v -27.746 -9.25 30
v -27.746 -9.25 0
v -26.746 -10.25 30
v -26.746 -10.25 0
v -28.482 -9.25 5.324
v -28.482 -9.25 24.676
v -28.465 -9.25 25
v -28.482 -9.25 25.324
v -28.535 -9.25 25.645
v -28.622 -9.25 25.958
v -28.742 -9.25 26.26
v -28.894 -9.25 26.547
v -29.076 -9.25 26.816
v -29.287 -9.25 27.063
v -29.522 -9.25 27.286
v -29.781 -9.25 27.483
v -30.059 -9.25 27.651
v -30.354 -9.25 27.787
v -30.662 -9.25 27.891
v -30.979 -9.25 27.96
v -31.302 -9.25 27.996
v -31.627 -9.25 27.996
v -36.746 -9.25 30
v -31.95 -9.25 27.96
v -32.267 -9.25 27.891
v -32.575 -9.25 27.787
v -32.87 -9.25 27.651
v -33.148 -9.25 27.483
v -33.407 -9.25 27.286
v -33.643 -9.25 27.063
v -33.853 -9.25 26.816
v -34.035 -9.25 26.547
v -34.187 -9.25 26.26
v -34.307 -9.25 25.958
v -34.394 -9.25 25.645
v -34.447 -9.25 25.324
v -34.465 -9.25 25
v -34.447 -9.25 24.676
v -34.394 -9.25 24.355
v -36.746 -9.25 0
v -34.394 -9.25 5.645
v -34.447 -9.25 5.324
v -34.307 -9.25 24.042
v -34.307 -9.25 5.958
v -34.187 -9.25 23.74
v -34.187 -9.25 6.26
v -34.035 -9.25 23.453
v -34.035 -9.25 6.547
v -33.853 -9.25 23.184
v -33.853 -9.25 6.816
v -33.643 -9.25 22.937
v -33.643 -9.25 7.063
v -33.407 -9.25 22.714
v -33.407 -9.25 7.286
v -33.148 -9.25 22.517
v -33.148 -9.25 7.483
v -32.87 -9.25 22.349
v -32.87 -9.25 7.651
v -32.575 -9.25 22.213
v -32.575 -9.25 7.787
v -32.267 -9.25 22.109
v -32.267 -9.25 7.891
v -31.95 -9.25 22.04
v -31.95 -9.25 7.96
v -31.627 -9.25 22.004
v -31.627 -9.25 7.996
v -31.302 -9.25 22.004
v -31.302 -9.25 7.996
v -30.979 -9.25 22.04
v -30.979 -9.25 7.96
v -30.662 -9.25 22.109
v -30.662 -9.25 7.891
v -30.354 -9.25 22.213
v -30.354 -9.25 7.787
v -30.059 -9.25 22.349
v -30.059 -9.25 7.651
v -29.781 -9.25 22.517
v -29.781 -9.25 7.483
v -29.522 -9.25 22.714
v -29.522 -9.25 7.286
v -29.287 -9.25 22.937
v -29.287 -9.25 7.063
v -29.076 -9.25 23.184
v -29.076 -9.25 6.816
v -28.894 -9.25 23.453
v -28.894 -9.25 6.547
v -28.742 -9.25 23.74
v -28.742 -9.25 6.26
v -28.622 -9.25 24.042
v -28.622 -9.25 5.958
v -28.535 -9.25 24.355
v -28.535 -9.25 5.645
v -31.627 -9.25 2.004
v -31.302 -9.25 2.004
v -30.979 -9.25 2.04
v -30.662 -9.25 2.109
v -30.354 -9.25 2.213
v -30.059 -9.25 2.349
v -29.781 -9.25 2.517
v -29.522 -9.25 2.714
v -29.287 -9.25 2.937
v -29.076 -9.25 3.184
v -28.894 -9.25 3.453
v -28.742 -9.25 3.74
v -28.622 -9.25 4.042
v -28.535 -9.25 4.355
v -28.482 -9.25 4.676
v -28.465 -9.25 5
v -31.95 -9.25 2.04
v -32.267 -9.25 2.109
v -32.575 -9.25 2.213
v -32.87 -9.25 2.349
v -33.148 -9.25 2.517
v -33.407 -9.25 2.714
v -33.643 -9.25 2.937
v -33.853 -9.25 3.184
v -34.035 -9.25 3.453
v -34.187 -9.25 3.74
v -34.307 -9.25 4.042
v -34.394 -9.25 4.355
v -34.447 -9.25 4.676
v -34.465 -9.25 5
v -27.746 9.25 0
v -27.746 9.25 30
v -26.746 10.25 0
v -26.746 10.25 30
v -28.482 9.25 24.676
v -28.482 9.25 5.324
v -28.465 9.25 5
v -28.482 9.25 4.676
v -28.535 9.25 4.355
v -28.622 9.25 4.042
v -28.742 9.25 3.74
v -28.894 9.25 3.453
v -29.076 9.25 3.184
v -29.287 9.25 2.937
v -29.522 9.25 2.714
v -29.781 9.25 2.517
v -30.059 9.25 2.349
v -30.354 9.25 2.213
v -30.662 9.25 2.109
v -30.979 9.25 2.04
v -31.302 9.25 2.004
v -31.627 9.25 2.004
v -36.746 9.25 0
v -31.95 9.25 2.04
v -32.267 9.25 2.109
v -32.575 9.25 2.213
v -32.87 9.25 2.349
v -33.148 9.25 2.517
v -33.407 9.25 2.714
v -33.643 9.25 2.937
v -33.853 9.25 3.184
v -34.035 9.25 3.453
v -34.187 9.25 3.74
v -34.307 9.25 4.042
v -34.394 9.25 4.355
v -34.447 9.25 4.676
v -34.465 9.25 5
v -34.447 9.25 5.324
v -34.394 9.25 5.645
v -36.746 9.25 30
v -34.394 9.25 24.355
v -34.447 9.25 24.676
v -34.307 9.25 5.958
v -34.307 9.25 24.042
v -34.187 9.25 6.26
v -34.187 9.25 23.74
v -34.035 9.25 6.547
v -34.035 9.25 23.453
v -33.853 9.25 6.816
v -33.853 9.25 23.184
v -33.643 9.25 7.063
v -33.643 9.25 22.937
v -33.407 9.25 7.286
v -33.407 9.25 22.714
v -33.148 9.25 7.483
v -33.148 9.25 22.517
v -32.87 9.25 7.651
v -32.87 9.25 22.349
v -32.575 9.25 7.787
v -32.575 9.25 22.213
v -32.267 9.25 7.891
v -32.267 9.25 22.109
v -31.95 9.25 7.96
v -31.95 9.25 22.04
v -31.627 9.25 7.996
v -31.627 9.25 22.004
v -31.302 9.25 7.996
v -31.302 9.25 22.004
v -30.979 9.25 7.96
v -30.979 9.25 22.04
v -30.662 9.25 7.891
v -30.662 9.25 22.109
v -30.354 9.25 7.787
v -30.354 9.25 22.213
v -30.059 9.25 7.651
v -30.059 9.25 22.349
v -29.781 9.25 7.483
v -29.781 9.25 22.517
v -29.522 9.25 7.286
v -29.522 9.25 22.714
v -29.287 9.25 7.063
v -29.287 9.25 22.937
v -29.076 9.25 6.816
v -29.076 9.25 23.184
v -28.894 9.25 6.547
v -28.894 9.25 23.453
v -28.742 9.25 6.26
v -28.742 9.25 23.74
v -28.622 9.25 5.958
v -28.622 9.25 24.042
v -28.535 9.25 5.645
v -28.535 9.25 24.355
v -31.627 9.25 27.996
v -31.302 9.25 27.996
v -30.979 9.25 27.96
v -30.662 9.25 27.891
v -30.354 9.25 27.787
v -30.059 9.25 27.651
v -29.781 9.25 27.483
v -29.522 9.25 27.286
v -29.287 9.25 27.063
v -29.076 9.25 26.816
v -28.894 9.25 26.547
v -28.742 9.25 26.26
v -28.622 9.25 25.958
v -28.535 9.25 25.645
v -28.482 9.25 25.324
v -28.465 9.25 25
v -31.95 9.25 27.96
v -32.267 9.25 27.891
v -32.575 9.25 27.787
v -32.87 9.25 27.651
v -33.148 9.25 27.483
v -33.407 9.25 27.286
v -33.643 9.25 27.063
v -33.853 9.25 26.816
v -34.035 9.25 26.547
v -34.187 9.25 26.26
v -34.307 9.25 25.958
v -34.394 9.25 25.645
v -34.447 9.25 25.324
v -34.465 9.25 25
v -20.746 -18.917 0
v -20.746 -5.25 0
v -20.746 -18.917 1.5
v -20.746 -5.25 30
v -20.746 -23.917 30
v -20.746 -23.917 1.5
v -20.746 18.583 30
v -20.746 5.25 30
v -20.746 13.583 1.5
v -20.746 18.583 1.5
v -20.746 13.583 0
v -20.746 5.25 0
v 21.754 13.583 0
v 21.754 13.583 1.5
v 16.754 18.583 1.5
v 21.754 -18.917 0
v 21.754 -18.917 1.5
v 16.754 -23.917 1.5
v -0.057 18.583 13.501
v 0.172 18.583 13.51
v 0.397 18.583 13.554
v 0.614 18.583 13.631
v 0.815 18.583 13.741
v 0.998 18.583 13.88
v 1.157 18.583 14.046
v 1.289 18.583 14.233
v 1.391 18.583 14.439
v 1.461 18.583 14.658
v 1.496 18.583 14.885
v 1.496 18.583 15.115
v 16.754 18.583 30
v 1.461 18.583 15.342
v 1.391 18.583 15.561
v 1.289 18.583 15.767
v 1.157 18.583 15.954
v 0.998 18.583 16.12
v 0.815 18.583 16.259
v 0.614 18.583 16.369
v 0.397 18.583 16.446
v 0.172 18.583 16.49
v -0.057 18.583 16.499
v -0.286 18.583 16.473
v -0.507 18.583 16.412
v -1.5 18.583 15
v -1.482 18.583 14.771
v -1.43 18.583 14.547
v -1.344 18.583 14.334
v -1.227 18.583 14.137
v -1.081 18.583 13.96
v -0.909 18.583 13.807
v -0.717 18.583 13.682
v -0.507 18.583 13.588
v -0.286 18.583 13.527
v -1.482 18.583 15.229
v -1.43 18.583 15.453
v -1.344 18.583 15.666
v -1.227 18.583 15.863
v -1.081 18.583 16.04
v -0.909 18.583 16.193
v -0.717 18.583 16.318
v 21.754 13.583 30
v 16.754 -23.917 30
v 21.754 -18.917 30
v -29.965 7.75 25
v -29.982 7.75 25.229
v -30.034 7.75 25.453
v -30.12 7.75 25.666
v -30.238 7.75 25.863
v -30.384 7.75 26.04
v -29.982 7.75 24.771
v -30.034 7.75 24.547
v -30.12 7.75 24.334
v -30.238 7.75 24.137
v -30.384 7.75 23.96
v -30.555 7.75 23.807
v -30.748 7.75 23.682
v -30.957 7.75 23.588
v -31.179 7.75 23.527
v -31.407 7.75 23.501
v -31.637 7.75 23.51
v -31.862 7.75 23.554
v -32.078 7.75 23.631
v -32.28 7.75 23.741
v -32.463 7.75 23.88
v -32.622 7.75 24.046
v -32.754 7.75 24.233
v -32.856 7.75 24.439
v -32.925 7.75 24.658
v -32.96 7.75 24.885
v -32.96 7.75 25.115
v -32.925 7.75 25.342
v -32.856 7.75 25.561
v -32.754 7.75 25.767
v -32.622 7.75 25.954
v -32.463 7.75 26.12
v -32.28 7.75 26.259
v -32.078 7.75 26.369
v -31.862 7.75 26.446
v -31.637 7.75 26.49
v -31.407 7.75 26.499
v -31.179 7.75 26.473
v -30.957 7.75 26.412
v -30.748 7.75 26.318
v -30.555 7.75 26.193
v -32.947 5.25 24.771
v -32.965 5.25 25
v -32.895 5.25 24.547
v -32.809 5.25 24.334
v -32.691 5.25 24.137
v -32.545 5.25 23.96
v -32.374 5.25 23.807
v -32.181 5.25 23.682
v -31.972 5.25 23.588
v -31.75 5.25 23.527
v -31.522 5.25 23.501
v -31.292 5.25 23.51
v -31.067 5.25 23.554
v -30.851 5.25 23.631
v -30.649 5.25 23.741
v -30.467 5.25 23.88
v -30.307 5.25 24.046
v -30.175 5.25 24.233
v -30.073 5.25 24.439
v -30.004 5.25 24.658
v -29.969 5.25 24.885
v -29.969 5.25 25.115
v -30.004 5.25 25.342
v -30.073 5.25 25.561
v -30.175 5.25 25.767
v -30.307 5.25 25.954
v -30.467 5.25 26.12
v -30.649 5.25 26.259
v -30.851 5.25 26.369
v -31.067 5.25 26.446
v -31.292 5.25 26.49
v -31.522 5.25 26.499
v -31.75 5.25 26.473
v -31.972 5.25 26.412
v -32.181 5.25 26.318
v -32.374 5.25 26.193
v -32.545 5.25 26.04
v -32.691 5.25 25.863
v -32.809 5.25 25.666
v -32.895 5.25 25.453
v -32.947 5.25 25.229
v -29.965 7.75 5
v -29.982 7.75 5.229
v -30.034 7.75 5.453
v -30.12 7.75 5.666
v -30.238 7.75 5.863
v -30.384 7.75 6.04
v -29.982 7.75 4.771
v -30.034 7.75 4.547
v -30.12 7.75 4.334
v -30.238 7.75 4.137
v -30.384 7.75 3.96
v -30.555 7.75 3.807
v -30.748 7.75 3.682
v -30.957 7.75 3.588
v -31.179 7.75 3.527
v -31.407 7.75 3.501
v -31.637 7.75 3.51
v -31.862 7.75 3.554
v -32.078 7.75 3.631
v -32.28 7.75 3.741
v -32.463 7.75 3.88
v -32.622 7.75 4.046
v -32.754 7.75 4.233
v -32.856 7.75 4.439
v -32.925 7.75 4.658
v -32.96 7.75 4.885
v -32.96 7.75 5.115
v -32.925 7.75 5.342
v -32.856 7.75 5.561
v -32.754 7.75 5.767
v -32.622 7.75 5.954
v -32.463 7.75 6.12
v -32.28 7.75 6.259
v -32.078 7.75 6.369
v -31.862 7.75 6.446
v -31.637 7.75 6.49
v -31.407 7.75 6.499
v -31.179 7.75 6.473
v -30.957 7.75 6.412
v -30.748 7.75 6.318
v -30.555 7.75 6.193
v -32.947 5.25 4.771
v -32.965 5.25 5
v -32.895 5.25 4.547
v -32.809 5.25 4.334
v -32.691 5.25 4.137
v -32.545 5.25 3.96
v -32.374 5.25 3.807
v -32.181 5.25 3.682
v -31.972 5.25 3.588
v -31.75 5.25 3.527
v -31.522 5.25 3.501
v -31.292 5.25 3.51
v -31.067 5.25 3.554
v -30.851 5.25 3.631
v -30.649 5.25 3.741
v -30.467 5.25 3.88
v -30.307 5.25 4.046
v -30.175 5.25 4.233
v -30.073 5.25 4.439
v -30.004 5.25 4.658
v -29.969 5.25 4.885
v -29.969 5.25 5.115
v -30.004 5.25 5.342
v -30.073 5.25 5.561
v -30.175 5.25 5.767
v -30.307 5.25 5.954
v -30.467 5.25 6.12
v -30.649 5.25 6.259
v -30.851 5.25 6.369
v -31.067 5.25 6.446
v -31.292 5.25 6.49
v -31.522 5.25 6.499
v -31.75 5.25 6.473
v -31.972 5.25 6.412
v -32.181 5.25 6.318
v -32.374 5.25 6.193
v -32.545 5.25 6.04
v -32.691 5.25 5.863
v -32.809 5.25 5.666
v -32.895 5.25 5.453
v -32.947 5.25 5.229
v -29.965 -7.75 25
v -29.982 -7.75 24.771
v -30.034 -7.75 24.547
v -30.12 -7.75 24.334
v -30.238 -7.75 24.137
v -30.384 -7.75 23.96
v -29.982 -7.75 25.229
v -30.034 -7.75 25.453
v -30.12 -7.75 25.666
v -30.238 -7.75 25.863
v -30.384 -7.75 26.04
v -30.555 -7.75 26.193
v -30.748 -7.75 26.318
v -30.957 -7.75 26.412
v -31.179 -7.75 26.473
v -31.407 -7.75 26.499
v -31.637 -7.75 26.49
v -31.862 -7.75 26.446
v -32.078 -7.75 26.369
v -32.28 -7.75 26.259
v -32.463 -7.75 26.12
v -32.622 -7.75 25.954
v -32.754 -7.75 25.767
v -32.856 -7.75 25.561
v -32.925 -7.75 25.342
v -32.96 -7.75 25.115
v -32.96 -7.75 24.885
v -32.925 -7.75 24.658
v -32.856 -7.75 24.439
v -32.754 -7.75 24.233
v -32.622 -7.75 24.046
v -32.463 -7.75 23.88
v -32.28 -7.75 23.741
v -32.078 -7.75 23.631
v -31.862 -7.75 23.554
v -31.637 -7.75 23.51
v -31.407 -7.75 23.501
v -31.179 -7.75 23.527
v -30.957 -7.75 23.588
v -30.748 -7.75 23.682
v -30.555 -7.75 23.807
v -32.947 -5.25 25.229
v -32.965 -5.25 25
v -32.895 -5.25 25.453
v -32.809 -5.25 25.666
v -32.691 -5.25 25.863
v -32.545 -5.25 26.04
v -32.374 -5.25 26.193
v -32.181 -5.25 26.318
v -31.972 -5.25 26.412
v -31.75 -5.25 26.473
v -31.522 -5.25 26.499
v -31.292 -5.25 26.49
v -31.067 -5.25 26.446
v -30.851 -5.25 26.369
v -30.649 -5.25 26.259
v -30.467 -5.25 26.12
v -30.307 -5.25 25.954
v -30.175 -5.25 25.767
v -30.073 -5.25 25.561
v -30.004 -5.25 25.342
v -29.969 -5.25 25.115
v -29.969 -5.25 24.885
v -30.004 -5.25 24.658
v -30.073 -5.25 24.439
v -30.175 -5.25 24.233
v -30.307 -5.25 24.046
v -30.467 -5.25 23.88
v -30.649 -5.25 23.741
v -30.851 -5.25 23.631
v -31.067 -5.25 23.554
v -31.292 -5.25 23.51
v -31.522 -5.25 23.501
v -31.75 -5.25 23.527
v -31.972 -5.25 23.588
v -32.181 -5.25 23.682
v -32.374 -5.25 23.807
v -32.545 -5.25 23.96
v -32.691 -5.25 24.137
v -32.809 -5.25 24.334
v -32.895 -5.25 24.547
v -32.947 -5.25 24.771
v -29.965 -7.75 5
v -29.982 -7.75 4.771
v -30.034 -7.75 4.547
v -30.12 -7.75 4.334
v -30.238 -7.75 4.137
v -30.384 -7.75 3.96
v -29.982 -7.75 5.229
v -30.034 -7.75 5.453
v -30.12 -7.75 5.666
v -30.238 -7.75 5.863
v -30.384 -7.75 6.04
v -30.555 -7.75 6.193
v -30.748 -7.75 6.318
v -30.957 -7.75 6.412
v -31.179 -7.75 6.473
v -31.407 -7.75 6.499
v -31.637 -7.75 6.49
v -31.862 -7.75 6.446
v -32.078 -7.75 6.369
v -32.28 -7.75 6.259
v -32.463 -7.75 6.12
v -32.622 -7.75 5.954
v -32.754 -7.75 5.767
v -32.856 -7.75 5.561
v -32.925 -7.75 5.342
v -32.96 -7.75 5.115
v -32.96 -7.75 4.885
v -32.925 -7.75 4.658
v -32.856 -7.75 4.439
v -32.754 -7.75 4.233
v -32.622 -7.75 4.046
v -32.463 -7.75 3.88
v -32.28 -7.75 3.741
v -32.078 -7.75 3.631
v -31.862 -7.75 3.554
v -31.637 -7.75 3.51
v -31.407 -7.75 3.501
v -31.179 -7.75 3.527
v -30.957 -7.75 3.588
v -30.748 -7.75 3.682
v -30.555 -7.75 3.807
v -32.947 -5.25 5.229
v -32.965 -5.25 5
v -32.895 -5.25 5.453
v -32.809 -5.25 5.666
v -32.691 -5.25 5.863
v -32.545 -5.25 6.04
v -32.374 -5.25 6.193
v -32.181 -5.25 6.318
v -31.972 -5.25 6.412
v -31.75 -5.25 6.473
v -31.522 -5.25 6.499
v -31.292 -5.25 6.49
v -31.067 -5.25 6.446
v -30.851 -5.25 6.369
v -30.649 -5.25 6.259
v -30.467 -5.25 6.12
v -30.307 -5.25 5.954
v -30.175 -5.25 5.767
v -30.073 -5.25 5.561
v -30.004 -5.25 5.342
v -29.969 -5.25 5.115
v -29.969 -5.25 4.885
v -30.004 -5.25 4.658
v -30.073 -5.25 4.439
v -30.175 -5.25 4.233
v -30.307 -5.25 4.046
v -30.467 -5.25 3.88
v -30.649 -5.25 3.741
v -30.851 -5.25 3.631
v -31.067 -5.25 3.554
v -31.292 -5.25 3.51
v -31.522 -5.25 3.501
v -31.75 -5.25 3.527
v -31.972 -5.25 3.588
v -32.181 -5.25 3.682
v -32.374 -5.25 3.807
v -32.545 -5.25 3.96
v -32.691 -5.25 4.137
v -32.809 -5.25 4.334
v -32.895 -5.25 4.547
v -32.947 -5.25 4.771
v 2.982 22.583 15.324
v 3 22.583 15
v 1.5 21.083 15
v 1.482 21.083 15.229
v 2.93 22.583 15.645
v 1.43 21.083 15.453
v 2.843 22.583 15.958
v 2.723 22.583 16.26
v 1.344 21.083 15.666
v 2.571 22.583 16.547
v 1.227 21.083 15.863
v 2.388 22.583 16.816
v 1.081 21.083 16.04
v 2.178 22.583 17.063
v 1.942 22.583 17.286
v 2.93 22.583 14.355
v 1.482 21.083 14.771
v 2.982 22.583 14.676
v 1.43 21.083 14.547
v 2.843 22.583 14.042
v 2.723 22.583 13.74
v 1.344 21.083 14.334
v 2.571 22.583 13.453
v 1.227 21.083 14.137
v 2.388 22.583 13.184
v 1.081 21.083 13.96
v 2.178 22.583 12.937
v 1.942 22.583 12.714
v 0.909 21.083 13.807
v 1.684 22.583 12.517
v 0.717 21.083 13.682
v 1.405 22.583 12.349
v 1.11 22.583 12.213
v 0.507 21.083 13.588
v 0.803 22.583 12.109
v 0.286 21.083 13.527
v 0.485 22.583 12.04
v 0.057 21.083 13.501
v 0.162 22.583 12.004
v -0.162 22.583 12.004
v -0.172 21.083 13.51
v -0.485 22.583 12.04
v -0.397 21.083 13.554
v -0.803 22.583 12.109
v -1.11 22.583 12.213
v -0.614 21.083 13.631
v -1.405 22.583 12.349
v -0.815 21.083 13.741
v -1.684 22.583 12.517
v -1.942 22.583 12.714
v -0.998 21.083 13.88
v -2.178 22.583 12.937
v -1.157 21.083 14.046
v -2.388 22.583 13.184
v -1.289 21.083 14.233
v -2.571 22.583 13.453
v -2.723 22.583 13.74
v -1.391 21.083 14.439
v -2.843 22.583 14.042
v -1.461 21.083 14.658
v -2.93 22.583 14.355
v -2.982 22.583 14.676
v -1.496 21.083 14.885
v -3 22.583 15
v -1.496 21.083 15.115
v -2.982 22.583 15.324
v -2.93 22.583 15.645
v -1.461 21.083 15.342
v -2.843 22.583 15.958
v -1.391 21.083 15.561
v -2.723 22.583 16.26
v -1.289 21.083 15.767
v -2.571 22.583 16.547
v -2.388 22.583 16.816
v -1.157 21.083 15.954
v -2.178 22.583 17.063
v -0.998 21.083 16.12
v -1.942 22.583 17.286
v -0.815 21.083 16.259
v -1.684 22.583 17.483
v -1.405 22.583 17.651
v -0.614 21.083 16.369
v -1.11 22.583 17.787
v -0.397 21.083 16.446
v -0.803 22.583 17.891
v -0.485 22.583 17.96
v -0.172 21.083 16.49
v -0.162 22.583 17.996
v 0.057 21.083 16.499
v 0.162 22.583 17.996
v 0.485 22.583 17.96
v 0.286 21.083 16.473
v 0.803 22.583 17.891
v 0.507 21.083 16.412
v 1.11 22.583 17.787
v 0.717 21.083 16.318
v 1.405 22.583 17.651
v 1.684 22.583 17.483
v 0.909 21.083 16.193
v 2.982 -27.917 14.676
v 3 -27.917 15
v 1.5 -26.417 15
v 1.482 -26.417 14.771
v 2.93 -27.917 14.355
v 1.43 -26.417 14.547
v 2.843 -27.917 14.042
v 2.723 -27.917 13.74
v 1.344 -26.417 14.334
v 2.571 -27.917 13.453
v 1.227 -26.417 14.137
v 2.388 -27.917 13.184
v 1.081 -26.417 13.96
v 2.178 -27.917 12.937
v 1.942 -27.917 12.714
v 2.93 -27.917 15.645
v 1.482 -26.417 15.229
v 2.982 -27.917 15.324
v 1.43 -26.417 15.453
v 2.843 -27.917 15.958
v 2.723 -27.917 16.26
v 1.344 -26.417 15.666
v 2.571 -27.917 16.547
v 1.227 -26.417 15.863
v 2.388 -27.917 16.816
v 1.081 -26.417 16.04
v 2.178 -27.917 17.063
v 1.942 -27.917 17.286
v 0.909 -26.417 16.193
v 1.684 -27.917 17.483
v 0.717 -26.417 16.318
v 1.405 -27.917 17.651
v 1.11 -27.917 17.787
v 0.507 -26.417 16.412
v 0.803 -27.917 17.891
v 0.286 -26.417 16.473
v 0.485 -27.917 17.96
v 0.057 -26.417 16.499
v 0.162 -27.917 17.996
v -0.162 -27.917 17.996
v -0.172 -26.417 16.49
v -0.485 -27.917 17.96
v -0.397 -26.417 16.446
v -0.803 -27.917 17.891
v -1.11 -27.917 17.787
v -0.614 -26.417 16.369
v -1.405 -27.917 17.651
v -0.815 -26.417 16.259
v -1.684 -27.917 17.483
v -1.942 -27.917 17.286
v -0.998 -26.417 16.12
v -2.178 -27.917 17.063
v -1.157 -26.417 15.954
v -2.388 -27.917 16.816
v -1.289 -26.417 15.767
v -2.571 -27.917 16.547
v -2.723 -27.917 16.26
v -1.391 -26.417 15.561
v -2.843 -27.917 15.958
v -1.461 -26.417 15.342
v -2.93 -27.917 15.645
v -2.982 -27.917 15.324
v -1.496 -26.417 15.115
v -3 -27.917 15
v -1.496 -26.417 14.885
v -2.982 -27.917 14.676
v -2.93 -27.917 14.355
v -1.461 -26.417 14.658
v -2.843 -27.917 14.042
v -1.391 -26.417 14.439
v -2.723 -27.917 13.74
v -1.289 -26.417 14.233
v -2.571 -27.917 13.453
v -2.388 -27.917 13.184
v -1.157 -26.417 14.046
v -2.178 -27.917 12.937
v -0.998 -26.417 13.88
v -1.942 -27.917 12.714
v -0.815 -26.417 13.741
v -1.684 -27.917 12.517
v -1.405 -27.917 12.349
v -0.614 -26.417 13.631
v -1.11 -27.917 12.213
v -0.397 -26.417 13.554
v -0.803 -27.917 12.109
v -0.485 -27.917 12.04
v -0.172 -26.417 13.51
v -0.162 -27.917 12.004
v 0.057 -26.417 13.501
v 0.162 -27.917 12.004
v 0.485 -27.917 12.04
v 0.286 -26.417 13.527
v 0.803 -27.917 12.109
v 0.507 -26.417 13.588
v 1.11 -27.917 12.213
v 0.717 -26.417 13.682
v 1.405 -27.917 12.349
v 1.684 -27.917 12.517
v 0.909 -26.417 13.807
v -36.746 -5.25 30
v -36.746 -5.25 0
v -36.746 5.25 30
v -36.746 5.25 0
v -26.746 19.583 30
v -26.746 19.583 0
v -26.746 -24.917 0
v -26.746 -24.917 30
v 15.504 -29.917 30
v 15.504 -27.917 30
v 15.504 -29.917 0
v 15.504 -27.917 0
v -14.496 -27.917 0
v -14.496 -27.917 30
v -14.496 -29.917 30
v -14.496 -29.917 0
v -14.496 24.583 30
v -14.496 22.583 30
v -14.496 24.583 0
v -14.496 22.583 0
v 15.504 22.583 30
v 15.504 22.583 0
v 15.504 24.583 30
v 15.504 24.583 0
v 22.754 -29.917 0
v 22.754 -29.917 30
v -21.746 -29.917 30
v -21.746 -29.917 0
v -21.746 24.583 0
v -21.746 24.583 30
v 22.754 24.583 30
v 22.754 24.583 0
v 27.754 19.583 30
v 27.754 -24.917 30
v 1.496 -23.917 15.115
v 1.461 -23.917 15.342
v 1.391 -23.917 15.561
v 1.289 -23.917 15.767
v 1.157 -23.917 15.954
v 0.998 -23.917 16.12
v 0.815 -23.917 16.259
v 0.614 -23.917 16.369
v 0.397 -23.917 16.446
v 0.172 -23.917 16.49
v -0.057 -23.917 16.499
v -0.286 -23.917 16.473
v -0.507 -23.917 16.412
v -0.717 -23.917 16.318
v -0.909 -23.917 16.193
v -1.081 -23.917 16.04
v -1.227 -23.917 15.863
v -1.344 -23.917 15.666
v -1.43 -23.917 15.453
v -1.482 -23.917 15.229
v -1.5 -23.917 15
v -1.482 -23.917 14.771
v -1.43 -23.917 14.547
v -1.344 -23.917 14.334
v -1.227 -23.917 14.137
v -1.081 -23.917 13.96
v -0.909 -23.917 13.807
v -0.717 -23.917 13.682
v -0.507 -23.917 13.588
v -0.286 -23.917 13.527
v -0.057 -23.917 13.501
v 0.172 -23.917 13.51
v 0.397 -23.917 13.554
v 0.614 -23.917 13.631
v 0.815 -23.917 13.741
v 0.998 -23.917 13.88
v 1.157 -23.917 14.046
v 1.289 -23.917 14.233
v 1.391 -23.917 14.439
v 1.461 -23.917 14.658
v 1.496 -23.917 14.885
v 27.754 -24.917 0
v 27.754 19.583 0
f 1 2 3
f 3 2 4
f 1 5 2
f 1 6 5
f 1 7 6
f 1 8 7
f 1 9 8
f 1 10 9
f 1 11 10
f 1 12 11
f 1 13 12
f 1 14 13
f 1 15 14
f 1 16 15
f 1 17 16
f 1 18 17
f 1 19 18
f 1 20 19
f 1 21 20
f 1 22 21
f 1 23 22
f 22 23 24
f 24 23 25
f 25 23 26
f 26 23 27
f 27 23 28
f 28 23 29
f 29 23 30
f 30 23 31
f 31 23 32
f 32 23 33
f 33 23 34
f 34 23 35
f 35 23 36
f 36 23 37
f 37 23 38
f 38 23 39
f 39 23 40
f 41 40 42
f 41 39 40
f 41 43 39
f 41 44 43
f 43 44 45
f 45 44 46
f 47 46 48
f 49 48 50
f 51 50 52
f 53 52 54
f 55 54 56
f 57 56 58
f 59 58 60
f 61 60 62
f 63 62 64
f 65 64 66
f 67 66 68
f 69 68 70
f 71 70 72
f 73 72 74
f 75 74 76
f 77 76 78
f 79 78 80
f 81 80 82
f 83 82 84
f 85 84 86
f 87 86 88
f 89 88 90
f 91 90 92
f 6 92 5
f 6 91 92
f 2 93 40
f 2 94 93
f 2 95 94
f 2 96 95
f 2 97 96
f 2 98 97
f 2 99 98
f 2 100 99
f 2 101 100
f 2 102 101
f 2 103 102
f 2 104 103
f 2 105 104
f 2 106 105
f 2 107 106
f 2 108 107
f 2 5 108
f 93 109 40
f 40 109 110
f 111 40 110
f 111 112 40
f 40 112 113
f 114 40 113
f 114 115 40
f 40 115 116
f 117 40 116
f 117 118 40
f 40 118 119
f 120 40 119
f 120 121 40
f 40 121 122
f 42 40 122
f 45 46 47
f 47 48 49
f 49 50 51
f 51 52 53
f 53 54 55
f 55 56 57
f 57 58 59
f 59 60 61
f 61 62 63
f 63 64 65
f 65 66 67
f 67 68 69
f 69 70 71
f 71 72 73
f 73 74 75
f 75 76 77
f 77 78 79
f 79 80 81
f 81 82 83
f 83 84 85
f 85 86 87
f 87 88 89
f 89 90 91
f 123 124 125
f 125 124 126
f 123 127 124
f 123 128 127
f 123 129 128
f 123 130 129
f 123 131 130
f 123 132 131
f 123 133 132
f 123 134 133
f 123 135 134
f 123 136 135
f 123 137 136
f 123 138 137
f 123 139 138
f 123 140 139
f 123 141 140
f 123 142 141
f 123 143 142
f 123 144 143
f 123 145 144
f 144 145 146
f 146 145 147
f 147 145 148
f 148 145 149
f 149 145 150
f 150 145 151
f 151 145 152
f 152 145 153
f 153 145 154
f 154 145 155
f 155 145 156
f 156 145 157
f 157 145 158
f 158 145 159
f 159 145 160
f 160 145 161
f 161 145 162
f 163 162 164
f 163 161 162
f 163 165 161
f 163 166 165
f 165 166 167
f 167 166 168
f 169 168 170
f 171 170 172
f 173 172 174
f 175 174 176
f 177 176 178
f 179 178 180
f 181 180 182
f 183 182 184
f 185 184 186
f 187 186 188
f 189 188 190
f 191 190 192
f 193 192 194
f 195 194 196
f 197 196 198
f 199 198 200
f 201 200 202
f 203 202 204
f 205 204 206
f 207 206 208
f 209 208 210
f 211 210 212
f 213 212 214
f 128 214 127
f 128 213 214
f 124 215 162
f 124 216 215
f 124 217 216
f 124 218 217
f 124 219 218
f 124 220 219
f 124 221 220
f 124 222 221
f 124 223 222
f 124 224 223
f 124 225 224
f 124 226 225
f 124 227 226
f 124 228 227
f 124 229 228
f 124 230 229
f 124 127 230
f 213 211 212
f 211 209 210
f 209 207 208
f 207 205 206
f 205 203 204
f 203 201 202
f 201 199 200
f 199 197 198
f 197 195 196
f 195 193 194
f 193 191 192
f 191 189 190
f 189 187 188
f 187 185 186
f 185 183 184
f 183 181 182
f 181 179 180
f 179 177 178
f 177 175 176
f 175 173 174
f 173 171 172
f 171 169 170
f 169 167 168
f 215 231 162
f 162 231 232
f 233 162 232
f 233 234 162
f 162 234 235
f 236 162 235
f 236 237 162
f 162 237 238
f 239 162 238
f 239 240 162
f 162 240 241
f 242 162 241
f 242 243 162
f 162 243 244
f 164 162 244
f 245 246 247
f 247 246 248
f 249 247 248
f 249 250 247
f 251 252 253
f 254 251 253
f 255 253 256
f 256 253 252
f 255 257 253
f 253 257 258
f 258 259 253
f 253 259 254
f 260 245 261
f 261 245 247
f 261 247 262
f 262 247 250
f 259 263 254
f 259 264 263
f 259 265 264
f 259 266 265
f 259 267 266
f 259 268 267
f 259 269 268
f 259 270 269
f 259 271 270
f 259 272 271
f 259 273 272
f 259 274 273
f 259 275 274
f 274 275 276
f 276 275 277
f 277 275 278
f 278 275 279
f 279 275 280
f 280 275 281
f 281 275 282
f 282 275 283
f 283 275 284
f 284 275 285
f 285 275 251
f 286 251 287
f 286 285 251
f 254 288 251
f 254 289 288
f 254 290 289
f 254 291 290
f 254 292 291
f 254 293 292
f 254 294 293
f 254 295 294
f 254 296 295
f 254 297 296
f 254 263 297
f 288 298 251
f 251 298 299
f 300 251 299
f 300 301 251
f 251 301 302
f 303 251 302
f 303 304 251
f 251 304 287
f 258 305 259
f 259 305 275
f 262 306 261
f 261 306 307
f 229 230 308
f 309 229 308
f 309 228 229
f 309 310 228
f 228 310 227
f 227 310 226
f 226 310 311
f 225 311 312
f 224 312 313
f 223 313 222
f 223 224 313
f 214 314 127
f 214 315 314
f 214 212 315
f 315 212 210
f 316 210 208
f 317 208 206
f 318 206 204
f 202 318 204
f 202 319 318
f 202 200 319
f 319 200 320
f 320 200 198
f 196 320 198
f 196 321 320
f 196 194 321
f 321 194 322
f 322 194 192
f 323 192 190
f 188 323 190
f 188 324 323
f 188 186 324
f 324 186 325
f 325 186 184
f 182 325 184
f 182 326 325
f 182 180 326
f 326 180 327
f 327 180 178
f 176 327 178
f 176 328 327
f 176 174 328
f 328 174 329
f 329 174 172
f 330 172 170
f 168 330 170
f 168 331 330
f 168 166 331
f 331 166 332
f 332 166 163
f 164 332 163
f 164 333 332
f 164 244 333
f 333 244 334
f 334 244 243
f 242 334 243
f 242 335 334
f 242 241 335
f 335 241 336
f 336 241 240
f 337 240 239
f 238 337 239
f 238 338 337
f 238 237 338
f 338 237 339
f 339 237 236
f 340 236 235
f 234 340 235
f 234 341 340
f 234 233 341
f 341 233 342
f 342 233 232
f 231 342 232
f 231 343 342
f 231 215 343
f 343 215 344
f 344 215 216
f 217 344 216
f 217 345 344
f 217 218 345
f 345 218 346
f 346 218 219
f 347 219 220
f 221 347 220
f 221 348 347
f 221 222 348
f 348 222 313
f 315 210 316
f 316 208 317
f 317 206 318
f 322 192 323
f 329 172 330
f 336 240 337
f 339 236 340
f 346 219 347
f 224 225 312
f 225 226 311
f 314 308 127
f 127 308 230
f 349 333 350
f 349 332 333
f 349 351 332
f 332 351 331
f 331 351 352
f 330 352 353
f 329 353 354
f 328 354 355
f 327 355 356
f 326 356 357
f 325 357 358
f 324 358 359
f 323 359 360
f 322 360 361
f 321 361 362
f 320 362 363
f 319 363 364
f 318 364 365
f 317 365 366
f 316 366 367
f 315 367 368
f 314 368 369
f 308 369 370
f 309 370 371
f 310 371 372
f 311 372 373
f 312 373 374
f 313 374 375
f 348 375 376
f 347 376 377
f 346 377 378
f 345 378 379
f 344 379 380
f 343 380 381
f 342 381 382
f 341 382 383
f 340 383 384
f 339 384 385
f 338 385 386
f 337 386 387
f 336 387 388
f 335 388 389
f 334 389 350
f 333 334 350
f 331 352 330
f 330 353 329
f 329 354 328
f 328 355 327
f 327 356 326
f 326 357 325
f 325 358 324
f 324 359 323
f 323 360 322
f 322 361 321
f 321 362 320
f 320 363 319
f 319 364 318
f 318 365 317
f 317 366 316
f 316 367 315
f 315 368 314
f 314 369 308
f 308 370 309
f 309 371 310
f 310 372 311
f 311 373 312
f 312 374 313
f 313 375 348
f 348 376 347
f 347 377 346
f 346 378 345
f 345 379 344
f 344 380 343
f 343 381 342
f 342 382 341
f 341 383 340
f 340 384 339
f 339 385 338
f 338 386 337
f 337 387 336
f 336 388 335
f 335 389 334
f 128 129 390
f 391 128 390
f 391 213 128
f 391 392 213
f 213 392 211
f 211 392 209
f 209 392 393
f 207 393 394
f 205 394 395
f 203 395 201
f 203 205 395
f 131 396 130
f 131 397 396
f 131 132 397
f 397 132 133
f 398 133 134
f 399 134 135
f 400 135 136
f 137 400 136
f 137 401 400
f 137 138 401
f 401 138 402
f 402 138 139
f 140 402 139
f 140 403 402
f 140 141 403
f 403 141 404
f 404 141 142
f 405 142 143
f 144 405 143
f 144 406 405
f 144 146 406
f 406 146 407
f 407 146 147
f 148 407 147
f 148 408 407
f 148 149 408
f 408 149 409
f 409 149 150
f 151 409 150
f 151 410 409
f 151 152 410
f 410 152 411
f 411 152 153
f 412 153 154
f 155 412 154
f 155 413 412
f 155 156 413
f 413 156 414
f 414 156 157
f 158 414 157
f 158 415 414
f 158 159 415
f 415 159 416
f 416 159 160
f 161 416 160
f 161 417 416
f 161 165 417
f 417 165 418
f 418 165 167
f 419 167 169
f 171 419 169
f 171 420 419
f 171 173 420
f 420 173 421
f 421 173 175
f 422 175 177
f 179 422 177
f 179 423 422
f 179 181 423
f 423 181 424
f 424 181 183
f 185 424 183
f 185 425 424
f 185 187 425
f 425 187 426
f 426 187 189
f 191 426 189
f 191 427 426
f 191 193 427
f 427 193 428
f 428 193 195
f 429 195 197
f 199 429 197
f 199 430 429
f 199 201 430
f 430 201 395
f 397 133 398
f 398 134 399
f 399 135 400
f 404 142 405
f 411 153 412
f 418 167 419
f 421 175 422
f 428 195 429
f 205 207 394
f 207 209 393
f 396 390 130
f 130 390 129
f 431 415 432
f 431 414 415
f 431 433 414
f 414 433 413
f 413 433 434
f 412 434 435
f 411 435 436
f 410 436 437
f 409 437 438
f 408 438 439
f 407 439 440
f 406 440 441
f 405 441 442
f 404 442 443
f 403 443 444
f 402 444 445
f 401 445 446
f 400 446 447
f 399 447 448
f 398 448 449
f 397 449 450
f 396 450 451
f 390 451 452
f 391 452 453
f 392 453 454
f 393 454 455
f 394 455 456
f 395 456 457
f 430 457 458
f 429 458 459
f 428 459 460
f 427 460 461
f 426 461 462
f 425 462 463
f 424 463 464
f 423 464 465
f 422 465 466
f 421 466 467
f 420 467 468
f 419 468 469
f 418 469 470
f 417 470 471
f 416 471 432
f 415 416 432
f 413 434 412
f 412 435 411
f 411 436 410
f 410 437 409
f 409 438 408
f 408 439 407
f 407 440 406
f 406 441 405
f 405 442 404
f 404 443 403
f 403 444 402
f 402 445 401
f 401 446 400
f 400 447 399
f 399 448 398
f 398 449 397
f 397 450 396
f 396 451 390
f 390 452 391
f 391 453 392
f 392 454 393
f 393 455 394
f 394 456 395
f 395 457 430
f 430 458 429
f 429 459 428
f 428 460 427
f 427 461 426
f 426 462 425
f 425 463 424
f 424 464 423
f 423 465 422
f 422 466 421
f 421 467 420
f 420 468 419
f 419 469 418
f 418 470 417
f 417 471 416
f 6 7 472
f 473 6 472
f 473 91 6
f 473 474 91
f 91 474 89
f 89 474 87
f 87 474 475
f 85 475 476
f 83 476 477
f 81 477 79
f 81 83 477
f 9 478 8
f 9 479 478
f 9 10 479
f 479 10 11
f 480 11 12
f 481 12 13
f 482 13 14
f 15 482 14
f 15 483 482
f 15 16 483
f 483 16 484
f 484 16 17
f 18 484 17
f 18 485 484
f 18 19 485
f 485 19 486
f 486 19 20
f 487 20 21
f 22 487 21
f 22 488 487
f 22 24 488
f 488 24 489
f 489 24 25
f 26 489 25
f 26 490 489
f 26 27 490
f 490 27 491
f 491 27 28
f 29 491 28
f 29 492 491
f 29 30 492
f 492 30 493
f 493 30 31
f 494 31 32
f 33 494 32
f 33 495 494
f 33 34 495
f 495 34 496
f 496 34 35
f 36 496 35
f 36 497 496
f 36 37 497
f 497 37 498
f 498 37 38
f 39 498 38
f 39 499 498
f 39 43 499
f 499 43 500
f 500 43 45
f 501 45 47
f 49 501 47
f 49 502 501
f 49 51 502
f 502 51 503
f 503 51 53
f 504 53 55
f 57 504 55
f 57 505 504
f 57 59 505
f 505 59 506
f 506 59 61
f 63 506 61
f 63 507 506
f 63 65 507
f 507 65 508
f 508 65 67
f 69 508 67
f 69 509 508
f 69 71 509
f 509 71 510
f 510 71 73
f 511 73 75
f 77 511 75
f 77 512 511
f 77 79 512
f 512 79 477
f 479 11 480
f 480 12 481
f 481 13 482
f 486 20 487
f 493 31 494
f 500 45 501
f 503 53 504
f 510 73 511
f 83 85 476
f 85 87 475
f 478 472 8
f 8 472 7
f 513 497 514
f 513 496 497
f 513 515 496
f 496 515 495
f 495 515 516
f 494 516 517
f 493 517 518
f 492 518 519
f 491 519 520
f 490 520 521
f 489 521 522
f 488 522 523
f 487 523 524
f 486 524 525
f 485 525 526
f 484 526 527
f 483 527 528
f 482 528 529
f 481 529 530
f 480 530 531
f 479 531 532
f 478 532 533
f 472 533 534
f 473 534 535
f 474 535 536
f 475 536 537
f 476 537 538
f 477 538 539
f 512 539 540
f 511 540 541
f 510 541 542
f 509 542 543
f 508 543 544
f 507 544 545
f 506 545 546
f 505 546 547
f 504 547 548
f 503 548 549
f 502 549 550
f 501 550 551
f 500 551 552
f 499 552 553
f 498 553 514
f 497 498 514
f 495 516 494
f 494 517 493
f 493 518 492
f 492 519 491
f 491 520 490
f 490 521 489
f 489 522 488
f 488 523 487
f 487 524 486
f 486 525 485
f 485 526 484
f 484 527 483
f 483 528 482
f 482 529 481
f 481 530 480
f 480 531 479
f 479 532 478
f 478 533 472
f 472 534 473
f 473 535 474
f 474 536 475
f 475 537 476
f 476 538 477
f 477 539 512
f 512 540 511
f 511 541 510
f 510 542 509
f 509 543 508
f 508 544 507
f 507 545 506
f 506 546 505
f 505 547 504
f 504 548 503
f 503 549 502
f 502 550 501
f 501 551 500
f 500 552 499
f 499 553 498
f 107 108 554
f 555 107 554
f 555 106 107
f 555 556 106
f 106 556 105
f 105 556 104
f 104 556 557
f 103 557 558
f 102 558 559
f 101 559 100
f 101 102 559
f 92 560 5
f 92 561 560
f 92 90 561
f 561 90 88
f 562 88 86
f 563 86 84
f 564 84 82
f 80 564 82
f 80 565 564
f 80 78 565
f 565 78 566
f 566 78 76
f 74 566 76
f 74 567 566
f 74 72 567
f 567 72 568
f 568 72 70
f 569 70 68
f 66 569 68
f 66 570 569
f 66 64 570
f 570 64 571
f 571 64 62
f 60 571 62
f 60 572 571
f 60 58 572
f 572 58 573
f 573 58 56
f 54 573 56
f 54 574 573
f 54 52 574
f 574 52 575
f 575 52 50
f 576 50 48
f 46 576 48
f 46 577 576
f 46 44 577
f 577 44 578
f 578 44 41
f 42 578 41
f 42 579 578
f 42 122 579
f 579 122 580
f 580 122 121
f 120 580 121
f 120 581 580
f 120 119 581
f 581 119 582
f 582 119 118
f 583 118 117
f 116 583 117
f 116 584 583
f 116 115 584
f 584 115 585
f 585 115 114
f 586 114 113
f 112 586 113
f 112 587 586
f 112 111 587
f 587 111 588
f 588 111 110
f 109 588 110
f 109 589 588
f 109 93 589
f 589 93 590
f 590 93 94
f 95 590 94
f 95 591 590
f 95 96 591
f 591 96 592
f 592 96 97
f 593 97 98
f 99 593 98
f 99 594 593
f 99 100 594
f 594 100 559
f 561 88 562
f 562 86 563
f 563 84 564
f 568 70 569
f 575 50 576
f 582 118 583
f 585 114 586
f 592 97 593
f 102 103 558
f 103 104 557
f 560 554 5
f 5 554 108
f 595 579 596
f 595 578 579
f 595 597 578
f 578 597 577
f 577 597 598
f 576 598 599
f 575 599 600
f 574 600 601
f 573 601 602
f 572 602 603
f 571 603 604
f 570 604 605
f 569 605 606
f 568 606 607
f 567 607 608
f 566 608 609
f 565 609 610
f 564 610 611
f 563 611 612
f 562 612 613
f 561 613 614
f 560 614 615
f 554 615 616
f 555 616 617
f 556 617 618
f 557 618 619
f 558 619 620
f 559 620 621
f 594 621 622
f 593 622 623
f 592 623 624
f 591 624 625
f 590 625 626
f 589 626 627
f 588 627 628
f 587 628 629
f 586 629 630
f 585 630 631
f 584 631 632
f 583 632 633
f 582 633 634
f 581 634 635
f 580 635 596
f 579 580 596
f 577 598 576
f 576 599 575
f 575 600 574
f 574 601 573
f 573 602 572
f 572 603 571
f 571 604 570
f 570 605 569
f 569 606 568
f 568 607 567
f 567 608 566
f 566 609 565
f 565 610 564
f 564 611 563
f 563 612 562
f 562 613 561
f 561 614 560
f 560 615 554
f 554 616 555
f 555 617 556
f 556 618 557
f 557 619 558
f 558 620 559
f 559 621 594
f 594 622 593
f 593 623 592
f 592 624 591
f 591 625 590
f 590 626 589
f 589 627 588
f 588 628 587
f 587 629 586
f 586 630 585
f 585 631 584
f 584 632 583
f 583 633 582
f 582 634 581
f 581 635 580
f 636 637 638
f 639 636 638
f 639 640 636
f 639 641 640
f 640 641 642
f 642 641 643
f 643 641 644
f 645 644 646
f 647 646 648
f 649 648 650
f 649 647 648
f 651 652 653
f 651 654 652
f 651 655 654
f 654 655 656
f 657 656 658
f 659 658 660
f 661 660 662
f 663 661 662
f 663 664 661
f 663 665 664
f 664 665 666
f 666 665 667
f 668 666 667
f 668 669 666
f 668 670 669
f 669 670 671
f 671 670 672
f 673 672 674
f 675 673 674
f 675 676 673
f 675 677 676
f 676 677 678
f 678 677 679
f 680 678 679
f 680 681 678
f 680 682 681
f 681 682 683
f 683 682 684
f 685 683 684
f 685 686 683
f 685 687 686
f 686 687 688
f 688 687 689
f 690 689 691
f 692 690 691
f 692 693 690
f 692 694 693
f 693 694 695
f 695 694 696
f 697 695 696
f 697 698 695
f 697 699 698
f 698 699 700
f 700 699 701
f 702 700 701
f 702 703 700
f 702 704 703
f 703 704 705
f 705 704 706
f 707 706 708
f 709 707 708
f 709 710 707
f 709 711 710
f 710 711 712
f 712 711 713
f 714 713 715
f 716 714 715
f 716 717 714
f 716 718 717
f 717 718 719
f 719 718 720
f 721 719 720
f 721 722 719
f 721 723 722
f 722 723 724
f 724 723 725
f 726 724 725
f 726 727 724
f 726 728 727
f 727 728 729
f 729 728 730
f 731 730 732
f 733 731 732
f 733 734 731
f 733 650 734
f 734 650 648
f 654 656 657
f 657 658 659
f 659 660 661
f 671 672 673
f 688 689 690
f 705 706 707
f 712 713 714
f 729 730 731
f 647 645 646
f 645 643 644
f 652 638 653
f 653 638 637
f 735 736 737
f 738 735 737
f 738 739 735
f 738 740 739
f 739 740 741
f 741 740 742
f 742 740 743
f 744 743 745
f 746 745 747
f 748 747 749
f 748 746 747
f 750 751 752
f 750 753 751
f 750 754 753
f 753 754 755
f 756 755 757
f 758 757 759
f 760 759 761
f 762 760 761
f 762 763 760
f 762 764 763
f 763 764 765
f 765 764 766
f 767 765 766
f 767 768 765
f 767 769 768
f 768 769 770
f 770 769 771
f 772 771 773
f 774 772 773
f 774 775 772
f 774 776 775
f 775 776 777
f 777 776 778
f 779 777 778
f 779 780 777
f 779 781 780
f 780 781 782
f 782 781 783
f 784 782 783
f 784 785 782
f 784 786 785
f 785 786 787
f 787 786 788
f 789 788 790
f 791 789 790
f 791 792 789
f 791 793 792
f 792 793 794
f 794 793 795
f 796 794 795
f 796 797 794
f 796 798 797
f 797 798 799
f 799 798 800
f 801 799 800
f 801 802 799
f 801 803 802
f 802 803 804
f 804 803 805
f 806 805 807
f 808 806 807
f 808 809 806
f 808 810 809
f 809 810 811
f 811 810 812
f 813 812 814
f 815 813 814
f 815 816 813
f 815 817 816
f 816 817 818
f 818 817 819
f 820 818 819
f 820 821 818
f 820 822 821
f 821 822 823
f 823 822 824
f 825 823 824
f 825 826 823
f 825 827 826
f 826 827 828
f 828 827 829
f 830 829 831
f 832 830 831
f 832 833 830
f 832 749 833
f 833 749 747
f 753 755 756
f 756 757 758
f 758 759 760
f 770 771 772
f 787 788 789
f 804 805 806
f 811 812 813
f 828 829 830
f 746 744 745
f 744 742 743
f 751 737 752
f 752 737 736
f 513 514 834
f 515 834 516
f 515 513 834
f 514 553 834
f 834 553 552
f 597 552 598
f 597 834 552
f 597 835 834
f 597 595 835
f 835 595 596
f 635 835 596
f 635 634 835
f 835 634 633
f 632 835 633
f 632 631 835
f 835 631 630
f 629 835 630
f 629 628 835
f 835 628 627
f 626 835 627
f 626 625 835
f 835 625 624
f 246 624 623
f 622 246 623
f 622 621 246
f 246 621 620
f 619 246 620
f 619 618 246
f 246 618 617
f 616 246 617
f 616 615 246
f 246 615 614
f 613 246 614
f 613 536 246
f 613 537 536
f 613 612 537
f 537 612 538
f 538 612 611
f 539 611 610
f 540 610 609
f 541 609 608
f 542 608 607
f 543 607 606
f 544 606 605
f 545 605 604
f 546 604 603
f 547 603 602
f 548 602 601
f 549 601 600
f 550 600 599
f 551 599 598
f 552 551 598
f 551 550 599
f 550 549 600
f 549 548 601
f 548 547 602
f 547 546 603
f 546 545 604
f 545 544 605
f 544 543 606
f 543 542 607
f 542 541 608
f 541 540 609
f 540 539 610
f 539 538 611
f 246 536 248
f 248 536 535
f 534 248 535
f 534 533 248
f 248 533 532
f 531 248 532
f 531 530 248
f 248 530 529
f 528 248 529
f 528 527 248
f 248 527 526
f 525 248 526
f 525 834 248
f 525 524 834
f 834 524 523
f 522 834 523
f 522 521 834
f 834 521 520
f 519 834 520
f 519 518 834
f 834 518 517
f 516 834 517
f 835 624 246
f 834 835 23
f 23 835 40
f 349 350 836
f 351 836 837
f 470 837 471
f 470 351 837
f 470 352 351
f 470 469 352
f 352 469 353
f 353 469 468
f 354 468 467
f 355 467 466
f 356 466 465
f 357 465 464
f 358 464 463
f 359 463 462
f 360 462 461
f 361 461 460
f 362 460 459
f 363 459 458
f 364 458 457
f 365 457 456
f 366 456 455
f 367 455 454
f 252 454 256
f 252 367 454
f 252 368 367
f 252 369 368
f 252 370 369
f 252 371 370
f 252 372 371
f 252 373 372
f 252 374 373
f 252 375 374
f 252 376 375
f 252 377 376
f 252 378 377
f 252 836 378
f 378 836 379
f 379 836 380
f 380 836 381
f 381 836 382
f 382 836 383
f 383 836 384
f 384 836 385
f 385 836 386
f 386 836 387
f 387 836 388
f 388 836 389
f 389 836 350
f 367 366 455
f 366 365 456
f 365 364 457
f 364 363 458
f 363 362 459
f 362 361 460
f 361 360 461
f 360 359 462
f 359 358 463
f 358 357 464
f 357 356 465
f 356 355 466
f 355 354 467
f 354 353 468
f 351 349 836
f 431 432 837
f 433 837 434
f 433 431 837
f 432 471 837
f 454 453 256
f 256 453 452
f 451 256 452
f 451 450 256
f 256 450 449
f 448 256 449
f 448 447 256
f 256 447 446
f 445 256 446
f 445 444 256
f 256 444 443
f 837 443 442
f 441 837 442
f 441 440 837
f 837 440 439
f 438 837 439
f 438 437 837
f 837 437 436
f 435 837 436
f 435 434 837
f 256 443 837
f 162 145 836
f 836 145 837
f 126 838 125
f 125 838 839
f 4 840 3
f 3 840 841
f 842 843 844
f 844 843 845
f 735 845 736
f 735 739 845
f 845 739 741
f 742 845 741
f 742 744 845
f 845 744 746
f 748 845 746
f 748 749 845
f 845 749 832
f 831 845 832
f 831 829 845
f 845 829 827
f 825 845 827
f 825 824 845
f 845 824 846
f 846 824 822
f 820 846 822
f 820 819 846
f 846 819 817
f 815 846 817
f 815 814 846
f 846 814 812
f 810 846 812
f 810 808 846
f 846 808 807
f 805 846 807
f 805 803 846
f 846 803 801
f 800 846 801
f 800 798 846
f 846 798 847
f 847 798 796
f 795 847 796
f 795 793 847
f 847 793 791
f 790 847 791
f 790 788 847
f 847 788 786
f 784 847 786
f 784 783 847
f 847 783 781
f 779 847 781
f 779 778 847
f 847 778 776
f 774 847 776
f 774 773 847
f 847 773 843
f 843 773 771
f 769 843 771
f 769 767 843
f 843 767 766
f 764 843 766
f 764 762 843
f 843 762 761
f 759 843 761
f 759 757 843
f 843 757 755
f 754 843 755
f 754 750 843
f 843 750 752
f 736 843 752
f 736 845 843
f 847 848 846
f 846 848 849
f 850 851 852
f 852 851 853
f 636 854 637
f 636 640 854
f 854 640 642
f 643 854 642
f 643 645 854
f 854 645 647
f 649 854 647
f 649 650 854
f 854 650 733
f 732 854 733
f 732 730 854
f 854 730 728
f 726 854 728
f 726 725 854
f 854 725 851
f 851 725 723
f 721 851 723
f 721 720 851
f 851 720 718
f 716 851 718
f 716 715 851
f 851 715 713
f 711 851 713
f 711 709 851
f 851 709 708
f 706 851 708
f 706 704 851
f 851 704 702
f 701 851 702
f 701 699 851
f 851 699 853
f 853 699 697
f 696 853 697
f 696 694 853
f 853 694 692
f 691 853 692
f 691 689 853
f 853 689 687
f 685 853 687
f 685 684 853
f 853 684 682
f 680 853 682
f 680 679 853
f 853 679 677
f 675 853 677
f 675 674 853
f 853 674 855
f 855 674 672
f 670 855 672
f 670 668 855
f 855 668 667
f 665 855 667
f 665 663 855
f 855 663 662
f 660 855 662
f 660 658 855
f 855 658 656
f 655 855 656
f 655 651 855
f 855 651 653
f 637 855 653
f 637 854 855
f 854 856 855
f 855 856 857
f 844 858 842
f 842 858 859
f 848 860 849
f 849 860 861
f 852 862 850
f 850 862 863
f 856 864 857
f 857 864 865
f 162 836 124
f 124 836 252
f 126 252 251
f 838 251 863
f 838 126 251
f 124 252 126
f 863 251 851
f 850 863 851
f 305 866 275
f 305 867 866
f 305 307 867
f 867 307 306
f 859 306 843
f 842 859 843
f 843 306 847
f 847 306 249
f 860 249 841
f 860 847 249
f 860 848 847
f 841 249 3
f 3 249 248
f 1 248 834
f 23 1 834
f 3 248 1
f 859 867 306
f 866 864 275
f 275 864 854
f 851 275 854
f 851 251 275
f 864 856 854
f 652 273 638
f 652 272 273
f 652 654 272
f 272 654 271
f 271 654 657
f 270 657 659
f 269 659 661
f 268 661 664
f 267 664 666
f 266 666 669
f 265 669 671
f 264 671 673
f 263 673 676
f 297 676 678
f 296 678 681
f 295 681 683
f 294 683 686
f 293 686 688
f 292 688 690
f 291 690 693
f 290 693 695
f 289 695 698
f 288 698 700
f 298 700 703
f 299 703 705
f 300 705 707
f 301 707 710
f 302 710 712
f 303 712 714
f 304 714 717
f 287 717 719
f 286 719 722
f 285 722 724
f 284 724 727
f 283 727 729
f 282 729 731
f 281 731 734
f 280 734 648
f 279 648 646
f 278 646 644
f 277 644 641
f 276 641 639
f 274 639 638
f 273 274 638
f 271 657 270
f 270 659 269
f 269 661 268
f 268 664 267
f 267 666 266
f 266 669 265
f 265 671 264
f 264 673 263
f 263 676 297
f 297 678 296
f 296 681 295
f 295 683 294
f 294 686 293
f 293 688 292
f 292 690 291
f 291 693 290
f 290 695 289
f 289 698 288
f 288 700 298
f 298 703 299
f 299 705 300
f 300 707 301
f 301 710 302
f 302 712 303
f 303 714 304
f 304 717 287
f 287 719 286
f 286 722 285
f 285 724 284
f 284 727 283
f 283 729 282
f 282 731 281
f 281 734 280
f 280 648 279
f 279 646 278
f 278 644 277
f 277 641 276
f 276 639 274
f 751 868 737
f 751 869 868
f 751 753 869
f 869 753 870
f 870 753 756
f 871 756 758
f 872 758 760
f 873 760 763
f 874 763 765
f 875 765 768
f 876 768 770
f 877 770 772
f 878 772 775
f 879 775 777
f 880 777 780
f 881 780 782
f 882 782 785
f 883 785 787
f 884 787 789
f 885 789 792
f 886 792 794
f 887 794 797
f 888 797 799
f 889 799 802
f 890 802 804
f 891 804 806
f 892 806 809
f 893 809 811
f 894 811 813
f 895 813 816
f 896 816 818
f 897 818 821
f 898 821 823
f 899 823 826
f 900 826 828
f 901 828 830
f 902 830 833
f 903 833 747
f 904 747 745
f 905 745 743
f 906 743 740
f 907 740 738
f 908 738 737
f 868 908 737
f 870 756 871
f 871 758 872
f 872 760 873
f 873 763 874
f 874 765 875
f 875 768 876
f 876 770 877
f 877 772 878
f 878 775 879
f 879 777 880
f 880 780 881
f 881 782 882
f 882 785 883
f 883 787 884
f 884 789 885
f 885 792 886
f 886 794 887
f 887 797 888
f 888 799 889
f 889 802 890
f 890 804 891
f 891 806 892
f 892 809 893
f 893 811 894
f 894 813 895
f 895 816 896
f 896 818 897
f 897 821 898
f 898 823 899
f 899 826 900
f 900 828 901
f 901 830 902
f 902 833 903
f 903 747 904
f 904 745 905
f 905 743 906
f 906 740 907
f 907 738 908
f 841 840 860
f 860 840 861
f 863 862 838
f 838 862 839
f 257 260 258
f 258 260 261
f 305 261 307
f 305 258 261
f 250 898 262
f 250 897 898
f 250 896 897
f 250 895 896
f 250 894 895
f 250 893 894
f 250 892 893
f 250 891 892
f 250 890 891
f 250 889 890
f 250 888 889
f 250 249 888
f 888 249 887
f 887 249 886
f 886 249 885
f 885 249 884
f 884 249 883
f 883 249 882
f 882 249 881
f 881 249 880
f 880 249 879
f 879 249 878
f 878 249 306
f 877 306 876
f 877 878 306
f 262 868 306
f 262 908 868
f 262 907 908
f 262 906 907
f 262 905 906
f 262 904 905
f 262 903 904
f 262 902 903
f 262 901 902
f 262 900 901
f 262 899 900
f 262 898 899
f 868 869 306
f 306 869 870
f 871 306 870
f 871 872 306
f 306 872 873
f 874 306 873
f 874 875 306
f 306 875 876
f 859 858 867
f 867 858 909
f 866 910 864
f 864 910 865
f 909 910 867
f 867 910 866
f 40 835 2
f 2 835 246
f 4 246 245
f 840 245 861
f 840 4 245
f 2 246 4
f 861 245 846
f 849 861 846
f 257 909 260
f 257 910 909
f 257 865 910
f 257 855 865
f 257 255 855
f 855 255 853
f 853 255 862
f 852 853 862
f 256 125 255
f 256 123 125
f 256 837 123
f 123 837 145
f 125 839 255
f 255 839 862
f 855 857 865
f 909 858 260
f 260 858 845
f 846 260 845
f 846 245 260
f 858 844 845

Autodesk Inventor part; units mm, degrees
ref_plane "YZ Plane" through (0, 0, 0) normal (1, 0, 0) x (0, 1, 0)
ref_plane "XZ Plane" through (0, 0, 0) normal (0, 1, 0) x (-1, 0, 0)
ref_plane "XY Plane" through (0, 0, 0) normal (0, 0, 1) x (1, 0, 0)
sketch "Sketch1" plane through (0, 0, 0) normal (0, 0, 1) x (1, 0, 0)
  line L0 (-20.7464, 18.5829) -> (21.7536, 18.5829)
  line L1 (21.7536, 18.5829) -> (21.7536, -23.9171)
  line L2 (21.7536, -23.9171) -> (-20.7464, -23.9171)
  line L3 (-20.7464, -23.9171) -> (-20.7464, 18.5829)
  line L4 (-26.7464, 24.5829) -> (27.7536, 24.5829)
  line L5 (27.7536, 24.5829) -> (27.7536, -29.9171)
  line L6 (27.7536, -29.9171) -> (-26.7464, -29.9171)
  line L7 (-26.7464, -29.9171) -> (-26.7464, 24.5829)
  point P0 (0, 0)
  dimension "d0" = 42.5
  dimension "d1" = 42.5
  dimension "d2" = 6
  dimension "d3" = 6
  dimension "d4" = 6
  dimension "d5" = 6
extrude "Extrusion1" add sketch "Sketch1" along normal blind 30
chamfer "Chamfer1" distance 5 angle 45 4 edges at (27.7536, 24.5829, 15) (27.7536, -29.9171, 15) (21.7536, -23.9171, 15) (21.7536, 18.5829, 15)
chamfer "Chamfer2" distance 5 angle 45 2 edges at (-26.7464, 24.5829, 15) (-26.7464, -29.9171, 15)
sketch "Sketch2" plane through (22.7536, -29.9171, 0) normal (0, -1, 0) x (1, 0, 0)
  line L0 (-44.5, 30) -> (0, 30) projected
  point P0 (-22.7536, 0)
  point P1 (-22.7536, 15)
  dimension "d14" = 15
hole "Hole1" at (0, -29.9171, 15) direction (0, 1, 0) diameter 3 depth 100 tip angle 118
sketch "Sketch3" plane through (0, 0, 30) normal (0, 0, 1) x (1, 0, 0)
  line L0 (-21.7464, -29.9171) -> (22.7536, -29.9171) projected
  line L1 (-14.4964, -29.9171) -> (15.5036, -29.9171)
  line L2 (15.5036, -29.9171) -> (15.5036, -27.9171)
  line L3 (15.5036, -27.9171) -> (-14.4964, -27.9171)
  line L4 (-14.4964, -27.9171) -> (-14.4964, -29.9171)
  line L5 (-21.7464, 24.5829) -> (22.7536, 24.5829) projected
  line L6 (-14.4964, 24.5829) -> (15.5036, 24.5829)
  line L7 (15.5036, 24.5829) -> (15.5036, 22.5829)
  line L8 (15.5036, 22.5829) -> (-14.4964, 22.5829)
  line L9 (-14.4964, 22.5829) -> (-14.4964, 24.5829)
  line L10 (-20.7464, -23.9171) -> (-20.7464, 18.5829) projected
  point P0 (0, 0)
  dimension "d22" = 30
  dimension "d23" = 6.25
  dimension "d24" = 2
  dimension "d25" = 2
extrude "Extrusion2" cut sketch "Sketch3" against normal blind 30
sketch "Sketch4" plane through (-26.7464, -24.9171, 0) normal (-1, 0, 0) x (0, 0, 1)
  point P0 (0, 24.9171)
sketch "Sketch5" plane through (-26.7464, -24.9171, 0) normal (-1, 0, 0) x (0, 0, 1)
  line L0 (30, 38.5) -> (30, 6) projected
  line L1 (30, 34.1671) -> (0, 34.1671)
  line L2 (0, 34.1671) -> (0, 30.1671)
  line L3 (0, 30.1671) -> (30, 30.1671)
  line L4 (30, 30.1671) -> (30, 34.1671)
  line L5 (30, 19.6671) -> (0, 19.6671)
  line L6 (0, 19.6671) -> (0, 15.6671)
  line L7 (0, 15.6671) -> (30, 15.6671)
  line L8 (30, 15.6671) -> (30, 19.6671)
  line L9 (0, 0) -> (0, 44.5) projected
  point P0 (0, 24.9171)
  dimension "d28" = 10.5
  dimension "d29" = 4
  dimension "d30" = 4
  dimension "d31" = 5.25
extrude "Extrusion3" add sketch "Sketch5" along normal blind 10 contours L0 L3 L2 L1 | L0 L7 L6 L5
sketch "Sketch6" plane through (22.7536, -29.9171, 0) normal (0, -1, 0) x (1, 0, 0)
  point P0 (-22.7536, 0)
sketch "Sketch7" plane through (-14.4964, -27.9171, 30) normal (0, -1, 0) x (1, 0, 0)
  circle A0 centre (14.4964, -15) radius 1.5 projected
  point P0 (14.4964, -30)
hole "Hole2" at (0, -27.9171, 15) direction (0, 1, 0) diameter 3 depth 100 tip angle 118 countersink diameter 6 countersink angle 90
sketch "Sketch8" plane through (-14.4964, 22.5829, 30) normal (0, 1, 0) x (1, 0, 0)
  circle A0 centre (14.4964, 15) radius 1.5 projected
  point P0 (14.4964, 30)
hole "Hole3" at (0, 22.5829, 15) direction (0, -1, 0) diameter 3 depth 5 tip angle 118 countersink diameter 6 countersink angle 90
sketch "Sketch9" plane through (-26.7464, -9.25, 0) normal (0, -1, 0) x (1, 0, 0)
  line L0 (0, 30) -> (-10, 30) projected
  line L1 (0, 0) -> (-10, 0) projected
  point P0 (26.7464, 0)
  point P1 (-4.7181, 25)
  point P2 (-4.7181, 5)
  dimension "d48" = 5
  dimension "d49" = 5
hole "Hole4" at (-31.4645, -9.25, 25) at (-31.4645, -9.25, 5) direction (0, 1, 0) diameter 3 depth 5 tip angle 118 countersink diameter 6 countersink angle 90
sketch "Sketch10" plane through (-26.7464, 9.25, 30) normal (0, 1, 0) x (1, 0, 0)
  circle A0 centre (-4.7181, 5) radius 1.5 projected
  circle A1 centre (-4.7181, 25) radius 1.5 projected
  point P0 (26.7464, 30)
hole "Hole5" at (-31.4645, 9.25, 25) at (-31.4645, 9.25, 5) direction (0, -1, 0) diameter 3 depth 5 tip angle 118 countersink diameter 6 countersink angle 90
sketch "Sketch11" plane through (0, 0, 0) normal (0, 0, -1) x (-1, 0, 0)
  line L0 (-21.7536, 13.5829) -> (20.7464, 13.5829)
  line L1 (20.7464, 13.5829) -> (20.7464, 18.5829)
  line L2 (20.7464, 18.5829) -> (-21.7536, 18.5829)
  line L3 (-21.7536, 18.5829) -> (-21.7536, 13.5829)
  line L4 (20.7464, -23.9171) -> (-21.7536, -23.9171)
  line L5 (-21.7536, -23.9171) -> (-21.7536, -18.9171)
  line L6 (-21.7536, -18.9171) -> (20.7464, -18.9171)
  line L7 (20.7464, -18.9171) -> (20.7464, -23.9171)
  line L8 (20.7464, -23.9171) -> (-16.7536, -23.9171) projected
  point P0 (0, 0)
  dimension "d64" = 5
extrude "Extrusion4" add sketch "Sketch11" against normal blind 1.5
sketch "Sketch12" plane through (-26.7464, -5.25, 0) normal (-1, 0, 0) x (0, 0, 1)
  point P0 (0, 5.25)
sketch "Sketch13" plane through (-26.7464, -5.25, 0) normal (-1, 0, 0) x (0, 0, 1)
  line L0 (30, 10.5) -> (0, 10.5)
  line L1 (0, 10.5) -> (0, 0)
  line L2 (0, 0) -> (30, 0)
  line L3 (30, 0) -> (30, 10.5)
  point P0 (0, 5.25)
extrude "Extrusion5" cut sketch "Sketch13" against normal blind 6
chamfer "Chamfer3" distance 1 angle 45 1 edges at (-26.7464, 9.25, 15)
chamfer "Chamfer4" distance 1 angle 45 1 edges at (-26.7464, -9.25, 15)
properties part number "Stepper mount v1"
